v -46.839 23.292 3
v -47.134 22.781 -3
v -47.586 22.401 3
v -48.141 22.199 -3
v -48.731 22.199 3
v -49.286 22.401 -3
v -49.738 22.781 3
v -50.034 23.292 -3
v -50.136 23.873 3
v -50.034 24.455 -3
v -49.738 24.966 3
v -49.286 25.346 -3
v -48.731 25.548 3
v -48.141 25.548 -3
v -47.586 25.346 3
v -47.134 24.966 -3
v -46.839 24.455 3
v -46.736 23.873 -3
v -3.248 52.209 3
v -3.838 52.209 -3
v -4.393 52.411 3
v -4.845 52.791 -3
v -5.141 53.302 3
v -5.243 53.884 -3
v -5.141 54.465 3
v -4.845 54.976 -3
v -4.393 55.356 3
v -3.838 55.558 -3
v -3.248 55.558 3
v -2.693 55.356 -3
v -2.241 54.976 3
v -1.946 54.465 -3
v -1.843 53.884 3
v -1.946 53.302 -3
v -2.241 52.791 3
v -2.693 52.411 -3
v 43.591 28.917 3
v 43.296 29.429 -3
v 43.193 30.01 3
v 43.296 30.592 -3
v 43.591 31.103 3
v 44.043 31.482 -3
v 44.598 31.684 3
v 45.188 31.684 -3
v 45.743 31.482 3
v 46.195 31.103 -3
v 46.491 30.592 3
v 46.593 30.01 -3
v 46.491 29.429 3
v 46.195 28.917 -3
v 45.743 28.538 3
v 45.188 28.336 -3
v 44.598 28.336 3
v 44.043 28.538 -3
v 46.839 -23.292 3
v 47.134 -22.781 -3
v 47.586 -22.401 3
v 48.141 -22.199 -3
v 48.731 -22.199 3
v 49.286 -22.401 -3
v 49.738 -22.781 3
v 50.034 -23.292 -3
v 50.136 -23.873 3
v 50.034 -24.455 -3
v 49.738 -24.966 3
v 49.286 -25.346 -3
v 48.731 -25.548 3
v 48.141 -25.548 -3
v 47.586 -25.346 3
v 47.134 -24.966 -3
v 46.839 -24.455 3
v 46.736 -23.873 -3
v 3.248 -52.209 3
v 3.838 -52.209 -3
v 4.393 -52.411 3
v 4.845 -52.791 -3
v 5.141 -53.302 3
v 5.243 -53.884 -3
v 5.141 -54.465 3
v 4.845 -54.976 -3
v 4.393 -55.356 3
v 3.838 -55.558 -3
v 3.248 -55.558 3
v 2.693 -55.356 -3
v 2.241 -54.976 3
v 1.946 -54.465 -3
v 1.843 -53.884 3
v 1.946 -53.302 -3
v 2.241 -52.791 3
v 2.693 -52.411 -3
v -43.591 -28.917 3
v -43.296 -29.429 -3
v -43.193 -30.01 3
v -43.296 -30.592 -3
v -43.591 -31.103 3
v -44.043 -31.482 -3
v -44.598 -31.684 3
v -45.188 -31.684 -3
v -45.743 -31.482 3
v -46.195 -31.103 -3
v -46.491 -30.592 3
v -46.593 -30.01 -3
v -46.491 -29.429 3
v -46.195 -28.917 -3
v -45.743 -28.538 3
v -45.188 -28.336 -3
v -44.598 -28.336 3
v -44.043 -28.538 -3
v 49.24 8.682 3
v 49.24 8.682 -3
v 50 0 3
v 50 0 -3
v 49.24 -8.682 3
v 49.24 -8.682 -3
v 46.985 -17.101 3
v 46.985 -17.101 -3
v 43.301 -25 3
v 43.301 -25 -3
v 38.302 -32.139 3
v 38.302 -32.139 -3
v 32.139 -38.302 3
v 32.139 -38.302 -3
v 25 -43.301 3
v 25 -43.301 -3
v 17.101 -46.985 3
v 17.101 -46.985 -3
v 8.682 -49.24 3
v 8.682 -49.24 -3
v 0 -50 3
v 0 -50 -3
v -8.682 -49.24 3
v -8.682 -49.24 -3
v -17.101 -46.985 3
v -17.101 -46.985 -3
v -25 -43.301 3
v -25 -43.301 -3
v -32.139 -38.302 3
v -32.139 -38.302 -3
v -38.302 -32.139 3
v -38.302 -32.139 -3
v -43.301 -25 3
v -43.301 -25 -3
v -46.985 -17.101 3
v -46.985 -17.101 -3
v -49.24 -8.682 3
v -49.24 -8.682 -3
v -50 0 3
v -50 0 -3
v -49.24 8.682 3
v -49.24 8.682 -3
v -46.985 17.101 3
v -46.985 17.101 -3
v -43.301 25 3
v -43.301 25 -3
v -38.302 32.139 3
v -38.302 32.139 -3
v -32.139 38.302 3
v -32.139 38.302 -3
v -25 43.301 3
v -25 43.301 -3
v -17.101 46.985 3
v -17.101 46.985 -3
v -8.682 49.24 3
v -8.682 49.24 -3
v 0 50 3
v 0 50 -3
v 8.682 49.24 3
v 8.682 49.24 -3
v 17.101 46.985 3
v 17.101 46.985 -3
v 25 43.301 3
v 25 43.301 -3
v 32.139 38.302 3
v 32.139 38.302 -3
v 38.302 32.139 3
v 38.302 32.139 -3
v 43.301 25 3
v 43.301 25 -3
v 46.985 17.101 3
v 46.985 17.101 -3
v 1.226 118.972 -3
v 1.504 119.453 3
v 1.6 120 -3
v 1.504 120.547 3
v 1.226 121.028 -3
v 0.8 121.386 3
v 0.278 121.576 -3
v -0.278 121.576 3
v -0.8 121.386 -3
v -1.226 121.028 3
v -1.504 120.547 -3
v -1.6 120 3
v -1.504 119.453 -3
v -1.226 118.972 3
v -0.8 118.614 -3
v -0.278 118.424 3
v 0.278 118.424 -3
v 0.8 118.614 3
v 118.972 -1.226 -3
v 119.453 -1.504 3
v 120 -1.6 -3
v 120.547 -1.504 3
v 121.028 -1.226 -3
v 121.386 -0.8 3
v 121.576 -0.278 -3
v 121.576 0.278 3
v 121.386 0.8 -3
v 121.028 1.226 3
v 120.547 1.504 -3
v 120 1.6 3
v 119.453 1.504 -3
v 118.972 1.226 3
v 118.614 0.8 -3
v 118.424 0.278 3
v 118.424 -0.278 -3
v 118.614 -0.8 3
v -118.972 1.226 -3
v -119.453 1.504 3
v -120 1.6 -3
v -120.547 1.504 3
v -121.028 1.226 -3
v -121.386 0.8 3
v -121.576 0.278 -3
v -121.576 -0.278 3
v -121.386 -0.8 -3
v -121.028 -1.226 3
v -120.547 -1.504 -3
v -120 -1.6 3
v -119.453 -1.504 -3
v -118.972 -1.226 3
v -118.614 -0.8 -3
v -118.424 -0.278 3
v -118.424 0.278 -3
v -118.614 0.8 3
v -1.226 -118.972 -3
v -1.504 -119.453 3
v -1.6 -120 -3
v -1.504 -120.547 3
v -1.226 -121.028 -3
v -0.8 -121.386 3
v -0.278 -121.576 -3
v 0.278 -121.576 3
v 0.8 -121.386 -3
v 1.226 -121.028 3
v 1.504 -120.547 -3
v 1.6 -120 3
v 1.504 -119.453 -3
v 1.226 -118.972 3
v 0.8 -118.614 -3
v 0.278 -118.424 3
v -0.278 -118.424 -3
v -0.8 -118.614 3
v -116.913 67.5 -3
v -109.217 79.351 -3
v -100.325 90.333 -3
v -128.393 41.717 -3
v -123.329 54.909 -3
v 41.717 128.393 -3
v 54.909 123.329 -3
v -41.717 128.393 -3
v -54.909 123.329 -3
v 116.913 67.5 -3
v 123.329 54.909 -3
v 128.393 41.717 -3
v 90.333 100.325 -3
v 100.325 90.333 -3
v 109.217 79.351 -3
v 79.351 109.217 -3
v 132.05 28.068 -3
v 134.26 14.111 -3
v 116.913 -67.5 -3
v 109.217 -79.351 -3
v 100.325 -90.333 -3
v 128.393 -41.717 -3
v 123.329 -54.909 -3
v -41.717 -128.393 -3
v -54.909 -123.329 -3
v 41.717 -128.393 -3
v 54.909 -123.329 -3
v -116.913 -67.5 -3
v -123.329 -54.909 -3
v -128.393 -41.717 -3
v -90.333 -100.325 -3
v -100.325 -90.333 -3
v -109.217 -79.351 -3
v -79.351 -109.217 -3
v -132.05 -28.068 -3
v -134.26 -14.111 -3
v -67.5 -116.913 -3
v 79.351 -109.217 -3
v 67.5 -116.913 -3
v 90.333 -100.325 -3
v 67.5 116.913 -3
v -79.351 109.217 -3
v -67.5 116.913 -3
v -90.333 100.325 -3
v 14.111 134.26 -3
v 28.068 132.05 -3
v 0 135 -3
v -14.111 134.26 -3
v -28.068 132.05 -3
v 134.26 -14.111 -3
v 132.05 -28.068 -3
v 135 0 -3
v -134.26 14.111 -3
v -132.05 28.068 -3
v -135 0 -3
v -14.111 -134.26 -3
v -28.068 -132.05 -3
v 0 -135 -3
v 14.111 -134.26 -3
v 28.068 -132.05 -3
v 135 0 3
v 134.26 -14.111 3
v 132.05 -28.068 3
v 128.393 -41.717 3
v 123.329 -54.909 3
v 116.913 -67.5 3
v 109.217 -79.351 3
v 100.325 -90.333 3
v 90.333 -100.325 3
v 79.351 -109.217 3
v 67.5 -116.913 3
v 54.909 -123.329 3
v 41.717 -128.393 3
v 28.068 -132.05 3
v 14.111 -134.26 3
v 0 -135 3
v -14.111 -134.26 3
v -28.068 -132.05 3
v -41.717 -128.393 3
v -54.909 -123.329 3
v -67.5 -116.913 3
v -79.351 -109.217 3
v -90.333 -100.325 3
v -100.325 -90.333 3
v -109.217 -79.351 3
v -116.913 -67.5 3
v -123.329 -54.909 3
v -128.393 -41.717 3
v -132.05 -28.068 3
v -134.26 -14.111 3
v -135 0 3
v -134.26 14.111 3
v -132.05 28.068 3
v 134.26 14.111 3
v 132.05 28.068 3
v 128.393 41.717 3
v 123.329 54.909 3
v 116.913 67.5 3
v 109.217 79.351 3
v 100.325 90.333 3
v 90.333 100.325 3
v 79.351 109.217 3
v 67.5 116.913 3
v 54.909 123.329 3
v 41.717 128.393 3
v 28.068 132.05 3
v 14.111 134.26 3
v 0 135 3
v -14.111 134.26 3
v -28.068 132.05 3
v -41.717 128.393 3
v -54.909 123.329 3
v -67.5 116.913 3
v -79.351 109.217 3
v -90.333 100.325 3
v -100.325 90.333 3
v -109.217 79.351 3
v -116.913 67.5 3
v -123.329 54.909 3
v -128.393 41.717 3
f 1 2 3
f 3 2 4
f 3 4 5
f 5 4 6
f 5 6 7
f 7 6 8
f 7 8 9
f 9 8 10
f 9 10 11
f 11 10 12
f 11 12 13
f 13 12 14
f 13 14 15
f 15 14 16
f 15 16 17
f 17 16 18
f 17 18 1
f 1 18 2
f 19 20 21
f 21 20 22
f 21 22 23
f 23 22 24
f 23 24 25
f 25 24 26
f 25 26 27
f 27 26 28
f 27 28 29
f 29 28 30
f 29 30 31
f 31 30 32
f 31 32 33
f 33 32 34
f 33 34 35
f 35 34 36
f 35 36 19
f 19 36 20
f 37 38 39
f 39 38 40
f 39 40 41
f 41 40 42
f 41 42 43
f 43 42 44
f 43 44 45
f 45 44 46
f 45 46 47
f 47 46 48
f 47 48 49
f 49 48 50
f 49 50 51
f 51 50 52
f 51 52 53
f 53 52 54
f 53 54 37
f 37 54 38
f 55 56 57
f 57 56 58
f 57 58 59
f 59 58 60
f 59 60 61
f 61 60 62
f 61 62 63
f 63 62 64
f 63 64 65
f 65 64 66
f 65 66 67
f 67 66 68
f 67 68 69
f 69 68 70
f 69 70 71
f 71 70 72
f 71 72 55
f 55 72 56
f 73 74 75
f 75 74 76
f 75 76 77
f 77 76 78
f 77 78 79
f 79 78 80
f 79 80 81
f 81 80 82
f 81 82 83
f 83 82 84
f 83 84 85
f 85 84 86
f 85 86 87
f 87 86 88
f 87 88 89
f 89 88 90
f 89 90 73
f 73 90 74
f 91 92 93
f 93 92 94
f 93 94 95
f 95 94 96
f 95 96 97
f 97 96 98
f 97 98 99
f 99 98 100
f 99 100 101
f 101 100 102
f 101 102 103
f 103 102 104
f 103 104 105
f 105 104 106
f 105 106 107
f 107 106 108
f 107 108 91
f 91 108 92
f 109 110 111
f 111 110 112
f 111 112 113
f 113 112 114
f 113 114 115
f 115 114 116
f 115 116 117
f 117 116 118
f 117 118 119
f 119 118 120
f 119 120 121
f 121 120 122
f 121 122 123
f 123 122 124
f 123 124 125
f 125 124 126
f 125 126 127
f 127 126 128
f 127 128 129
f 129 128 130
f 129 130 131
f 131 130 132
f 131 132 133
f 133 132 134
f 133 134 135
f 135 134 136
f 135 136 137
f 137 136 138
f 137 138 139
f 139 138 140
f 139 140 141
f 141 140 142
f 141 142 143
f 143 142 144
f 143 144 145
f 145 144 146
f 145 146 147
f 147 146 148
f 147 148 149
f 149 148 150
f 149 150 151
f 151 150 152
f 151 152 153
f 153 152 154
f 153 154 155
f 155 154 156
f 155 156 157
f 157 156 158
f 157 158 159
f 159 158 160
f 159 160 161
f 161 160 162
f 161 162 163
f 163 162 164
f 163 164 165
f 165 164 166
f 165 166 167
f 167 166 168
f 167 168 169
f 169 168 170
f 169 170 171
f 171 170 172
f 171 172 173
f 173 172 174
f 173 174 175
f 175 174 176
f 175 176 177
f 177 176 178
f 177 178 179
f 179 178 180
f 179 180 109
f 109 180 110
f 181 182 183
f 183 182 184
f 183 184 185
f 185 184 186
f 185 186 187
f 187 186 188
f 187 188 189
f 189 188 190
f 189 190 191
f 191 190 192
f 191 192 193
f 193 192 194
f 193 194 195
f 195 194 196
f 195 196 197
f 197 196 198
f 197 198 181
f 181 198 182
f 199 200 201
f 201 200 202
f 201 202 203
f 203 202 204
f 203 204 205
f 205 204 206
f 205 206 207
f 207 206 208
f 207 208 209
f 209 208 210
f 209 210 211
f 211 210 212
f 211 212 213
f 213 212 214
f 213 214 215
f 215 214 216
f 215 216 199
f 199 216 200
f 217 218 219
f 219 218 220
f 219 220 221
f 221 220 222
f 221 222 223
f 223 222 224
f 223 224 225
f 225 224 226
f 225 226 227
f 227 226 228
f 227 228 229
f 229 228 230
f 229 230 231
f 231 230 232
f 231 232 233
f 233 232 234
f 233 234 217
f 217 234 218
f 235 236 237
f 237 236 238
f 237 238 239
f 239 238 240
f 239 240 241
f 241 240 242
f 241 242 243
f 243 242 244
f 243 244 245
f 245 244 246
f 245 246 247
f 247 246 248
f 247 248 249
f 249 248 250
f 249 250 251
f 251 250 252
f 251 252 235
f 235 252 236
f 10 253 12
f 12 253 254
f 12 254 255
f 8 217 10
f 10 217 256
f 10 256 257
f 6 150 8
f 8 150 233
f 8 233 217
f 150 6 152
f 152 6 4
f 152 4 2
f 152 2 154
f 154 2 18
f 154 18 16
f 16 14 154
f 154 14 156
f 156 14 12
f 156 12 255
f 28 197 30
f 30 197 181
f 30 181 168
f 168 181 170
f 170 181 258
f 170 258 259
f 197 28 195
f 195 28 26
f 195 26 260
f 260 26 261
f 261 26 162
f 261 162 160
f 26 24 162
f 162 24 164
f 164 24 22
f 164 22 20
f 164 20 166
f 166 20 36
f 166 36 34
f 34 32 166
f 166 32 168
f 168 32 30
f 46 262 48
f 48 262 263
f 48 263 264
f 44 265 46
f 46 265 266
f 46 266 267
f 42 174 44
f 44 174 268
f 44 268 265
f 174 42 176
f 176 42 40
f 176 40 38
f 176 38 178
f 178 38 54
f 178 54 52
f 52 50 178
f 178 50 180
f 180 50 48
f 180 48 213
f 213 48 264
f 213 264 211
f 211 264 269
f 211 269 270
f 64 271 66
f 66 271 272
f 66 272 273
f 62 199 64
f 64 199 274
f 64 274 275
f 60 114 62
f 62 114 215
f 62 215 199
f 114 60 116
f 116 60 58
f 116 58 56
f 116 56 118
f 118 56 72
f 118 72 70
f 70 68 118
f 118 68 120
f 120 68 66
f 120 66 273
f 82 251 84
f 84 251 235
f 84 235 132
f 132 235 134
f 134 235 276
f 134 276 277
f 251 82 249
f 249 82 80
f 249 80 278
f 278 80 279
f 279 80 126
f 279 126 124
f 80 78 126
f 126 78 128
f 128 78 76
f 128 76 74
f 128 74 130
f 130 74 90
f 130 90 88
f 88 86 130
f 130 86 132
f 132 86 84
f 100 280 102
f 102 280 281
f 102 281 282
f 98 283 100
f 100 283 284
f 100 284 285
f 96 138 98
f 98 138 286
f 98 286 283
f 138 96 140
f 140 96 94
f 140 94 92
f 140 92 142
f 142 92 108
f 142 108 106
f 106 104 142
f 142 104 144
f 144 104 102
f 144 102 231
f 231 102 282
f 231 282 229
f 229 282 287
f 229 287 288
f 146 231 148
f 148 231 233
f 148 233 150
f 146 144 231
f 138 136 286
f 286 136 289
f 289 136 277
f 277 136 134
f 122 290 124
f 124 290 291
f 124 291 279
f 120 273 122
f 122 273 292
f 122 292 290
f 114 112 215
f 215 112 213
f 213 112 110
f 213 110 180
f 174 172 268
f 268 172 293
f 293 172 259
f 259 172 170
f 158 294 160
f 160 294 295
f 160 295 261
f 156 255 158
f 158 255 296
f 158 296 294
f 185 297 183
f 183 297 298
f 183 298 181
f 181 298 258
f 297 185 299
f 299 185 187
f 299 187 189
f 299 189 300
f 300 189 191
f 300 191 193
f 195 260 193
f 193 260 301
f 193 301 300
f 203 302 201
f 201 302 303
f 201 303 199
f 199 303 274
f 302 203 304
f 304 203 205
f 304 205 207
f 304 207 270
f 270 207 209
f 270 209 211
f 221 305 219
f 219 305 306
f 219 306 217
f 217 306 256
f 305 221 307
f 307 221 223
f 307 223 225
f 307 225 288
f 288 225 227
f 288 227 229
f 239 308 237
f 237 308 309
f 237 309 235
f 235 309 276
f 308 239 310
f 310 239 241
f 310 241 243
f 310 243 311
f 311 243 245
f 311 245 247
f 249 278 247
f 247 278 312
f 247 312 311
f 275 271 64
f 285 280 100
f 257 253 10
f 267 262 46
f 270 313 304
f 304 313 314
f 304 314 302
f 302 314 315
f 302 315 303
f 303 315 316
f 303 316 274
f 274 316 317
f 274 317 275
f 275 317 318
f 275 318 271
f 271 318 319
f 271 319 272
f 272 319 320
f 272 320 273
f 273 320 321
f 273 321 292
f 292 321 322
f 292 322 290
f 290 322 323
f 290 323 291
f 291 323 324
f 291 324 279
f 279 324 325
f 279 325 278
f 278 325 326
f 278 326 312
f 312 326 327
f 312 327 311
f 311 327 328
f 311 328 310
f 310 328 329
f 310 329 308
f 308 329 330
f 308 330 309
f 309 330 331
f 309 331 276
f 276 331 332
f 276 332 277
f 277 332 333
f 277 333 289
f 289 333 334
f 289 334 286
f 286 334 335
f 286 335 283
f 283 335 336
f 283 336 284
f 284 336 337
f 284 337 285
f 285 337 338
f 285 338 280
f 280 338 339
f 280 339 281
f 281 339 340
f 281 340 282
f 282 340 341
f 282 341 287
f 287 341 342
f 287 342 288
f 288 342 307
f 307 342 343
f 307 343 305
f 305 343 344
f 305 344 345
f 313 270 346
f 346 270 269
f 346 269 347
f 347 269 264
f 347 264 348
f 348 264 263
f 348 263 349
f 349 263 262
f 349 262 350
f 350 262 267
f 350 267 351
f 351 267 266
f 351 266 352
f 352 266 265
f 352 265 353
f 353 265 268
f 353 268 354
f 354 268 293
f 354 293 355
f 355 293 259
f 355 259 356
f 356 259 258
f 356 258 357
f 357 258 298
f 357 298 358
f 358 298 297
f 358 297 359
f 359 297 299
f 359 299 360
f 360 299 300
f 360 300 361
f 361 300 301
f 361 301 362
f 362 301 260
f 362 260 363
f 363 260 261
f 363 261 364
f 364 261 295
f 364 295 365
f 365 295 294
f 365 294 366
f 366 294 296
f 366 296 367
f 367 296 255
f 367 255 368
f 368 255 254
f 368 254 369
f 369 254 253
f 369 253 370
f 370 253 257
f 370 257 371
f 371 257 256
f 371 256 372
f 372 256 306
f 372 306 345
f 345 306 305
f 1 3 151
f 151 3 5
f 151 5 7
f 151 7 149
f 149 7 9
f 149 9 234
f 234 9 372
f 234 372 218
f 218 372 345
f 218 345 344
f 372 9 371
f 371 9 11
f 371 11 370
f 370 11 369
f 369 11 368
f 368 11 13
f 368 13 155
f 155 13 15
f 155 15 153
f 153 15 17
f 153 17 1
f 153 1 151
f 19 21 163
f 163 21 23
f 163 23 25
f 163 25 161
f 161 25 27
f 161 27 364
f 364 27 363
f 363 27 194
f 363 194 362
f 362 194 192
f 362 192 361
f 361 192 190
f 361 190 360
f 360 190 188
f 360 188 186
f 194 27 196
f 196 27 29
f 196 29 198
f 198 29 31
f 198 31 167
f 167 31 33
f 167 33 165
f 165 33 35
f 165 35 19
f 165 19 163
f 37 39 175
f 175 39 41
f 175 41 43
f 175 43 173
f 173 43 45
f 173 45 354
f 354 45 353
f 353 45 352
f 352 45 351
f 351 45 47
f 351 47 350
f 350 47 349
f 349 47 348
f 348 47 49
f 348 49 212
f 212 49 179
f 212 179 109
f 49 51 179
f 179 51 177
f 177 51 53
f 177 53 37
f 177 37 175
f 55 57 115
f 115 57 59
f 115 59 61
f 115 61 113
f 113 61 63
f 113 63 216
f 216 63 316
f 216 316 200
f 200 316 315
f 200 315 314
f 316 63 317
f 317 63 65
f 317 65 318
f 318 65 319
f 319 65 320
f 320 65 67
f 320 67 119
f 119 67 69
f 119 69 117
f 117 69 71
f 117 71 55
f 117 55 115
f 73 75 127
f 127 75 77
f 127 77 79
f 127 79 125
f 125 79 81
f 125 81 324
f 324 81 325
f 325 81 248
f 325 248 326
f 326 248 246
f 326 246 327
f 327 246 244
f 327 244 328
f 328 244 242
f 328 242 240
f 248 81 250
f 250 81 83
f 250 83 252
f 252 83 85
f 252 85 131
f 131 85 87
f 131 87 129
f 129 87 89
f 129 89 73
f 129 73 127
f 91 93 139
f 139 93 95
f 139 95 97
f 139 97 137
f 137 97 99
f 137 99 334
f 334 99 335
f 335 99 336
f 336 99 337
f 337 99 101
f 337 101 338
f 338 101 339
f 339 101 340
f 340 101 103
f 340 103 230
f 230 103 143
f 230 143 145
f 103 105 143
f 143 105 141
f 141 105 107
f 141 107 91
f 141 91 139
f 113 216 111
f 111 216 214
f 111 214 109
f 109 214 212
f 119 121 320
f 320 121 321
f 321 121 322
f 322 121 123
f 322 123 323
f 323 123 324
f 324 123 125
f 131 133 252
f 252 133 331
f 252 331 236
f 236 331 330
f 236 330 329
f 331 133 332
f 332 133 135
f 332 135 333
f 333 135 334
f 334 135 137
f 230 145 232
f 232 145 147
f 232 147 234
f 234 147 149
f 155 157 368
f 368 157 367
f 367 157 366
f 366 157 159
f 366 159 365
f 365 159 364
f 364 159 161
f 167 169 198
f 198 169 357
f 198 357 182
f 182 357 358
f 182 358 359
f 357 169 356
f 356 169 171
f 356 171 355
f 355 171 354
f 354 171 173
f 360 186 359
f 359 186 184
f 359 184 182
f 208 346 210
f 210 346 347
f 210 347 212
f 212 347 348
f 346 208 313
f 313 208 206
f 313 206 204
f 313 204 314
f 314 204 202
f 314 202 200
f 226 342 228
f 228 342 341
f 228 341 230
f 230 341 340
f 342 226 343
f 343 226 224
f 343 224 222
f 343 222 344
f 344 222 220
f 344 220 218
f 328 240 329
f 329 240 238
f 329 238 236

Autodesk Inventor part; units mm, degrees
ref_plane "YZ Plane" through (0, 0, 0) normal (1, 0, 0) x (0, 1, 0)
ref_plane "XZ Plane" through (0, 0, 0) normal (0, 1, 0) x (-1, 0, 0)
ref_plane "XY Plane" through (0, 0, 0) normal (0, 0, 1) x (1, 0, 0)
sketch "Эскиз1" plane through (0, 0, 0) normal (0, 0, 1) x (1, 0, 0)
  circle A0 centre (0, 0) radius 135
  dimension "d0" = 270
extrude "Выдавливание1" add sketch "Эскиз1" along normal mid plane 6
sketch "Эскиз2" plane through (0, 0, 3) normal (0, 0, 1) x (1, 0, 0)
  circle A0 centre (0, 0) radius 120 construction
  line L0 (0, 0) -> (0, -223.6058) construction
  point P0 (0, -120)
  dimension "d3" = 240
hole "Отверстие1" at (0, -120, 3) direction (0, 0, -1) diameter 3.2 end through all clearance for "лты с шестигранной головкой / гайка ГОСТ 12876-67" size "M3" standard "ГОСТ"
pattern_circular "Круговой массив1" count 4 over 360 about axis through (0, 0, 0) along (0, 0, 1) of "Отверстие1"
sketch "Эскиз3" plane through (0, 0, -3) normal (0, 0, -1) x (-1, 0, 0)
  circle A0 centre (0, 0) radius 50
  dimension "d14" = 100
extrude "Выдавливание2" cut sketch "Эскиз3" against normal through all
sketch "Эскиз4" plane through (0, 0, -3) normal (0, 0, -1) x (-1, 0, 0)
  circle A0 centre (44.8931, -30.0102) radius 2.25 construction
  point P0 (0, 0)
hole "Отверстие2" at (-44.8931, -30.0102, -3) direction (0, 0, 1) diameter 3.4 end through all
pattern_circular "Круговой массив2" count 6 over 360 about axis through (0, 0, -3) along (0, 0, 1) of "Отверстие2"
properties part number "Диск_опорный" material "По умолчанию1"
